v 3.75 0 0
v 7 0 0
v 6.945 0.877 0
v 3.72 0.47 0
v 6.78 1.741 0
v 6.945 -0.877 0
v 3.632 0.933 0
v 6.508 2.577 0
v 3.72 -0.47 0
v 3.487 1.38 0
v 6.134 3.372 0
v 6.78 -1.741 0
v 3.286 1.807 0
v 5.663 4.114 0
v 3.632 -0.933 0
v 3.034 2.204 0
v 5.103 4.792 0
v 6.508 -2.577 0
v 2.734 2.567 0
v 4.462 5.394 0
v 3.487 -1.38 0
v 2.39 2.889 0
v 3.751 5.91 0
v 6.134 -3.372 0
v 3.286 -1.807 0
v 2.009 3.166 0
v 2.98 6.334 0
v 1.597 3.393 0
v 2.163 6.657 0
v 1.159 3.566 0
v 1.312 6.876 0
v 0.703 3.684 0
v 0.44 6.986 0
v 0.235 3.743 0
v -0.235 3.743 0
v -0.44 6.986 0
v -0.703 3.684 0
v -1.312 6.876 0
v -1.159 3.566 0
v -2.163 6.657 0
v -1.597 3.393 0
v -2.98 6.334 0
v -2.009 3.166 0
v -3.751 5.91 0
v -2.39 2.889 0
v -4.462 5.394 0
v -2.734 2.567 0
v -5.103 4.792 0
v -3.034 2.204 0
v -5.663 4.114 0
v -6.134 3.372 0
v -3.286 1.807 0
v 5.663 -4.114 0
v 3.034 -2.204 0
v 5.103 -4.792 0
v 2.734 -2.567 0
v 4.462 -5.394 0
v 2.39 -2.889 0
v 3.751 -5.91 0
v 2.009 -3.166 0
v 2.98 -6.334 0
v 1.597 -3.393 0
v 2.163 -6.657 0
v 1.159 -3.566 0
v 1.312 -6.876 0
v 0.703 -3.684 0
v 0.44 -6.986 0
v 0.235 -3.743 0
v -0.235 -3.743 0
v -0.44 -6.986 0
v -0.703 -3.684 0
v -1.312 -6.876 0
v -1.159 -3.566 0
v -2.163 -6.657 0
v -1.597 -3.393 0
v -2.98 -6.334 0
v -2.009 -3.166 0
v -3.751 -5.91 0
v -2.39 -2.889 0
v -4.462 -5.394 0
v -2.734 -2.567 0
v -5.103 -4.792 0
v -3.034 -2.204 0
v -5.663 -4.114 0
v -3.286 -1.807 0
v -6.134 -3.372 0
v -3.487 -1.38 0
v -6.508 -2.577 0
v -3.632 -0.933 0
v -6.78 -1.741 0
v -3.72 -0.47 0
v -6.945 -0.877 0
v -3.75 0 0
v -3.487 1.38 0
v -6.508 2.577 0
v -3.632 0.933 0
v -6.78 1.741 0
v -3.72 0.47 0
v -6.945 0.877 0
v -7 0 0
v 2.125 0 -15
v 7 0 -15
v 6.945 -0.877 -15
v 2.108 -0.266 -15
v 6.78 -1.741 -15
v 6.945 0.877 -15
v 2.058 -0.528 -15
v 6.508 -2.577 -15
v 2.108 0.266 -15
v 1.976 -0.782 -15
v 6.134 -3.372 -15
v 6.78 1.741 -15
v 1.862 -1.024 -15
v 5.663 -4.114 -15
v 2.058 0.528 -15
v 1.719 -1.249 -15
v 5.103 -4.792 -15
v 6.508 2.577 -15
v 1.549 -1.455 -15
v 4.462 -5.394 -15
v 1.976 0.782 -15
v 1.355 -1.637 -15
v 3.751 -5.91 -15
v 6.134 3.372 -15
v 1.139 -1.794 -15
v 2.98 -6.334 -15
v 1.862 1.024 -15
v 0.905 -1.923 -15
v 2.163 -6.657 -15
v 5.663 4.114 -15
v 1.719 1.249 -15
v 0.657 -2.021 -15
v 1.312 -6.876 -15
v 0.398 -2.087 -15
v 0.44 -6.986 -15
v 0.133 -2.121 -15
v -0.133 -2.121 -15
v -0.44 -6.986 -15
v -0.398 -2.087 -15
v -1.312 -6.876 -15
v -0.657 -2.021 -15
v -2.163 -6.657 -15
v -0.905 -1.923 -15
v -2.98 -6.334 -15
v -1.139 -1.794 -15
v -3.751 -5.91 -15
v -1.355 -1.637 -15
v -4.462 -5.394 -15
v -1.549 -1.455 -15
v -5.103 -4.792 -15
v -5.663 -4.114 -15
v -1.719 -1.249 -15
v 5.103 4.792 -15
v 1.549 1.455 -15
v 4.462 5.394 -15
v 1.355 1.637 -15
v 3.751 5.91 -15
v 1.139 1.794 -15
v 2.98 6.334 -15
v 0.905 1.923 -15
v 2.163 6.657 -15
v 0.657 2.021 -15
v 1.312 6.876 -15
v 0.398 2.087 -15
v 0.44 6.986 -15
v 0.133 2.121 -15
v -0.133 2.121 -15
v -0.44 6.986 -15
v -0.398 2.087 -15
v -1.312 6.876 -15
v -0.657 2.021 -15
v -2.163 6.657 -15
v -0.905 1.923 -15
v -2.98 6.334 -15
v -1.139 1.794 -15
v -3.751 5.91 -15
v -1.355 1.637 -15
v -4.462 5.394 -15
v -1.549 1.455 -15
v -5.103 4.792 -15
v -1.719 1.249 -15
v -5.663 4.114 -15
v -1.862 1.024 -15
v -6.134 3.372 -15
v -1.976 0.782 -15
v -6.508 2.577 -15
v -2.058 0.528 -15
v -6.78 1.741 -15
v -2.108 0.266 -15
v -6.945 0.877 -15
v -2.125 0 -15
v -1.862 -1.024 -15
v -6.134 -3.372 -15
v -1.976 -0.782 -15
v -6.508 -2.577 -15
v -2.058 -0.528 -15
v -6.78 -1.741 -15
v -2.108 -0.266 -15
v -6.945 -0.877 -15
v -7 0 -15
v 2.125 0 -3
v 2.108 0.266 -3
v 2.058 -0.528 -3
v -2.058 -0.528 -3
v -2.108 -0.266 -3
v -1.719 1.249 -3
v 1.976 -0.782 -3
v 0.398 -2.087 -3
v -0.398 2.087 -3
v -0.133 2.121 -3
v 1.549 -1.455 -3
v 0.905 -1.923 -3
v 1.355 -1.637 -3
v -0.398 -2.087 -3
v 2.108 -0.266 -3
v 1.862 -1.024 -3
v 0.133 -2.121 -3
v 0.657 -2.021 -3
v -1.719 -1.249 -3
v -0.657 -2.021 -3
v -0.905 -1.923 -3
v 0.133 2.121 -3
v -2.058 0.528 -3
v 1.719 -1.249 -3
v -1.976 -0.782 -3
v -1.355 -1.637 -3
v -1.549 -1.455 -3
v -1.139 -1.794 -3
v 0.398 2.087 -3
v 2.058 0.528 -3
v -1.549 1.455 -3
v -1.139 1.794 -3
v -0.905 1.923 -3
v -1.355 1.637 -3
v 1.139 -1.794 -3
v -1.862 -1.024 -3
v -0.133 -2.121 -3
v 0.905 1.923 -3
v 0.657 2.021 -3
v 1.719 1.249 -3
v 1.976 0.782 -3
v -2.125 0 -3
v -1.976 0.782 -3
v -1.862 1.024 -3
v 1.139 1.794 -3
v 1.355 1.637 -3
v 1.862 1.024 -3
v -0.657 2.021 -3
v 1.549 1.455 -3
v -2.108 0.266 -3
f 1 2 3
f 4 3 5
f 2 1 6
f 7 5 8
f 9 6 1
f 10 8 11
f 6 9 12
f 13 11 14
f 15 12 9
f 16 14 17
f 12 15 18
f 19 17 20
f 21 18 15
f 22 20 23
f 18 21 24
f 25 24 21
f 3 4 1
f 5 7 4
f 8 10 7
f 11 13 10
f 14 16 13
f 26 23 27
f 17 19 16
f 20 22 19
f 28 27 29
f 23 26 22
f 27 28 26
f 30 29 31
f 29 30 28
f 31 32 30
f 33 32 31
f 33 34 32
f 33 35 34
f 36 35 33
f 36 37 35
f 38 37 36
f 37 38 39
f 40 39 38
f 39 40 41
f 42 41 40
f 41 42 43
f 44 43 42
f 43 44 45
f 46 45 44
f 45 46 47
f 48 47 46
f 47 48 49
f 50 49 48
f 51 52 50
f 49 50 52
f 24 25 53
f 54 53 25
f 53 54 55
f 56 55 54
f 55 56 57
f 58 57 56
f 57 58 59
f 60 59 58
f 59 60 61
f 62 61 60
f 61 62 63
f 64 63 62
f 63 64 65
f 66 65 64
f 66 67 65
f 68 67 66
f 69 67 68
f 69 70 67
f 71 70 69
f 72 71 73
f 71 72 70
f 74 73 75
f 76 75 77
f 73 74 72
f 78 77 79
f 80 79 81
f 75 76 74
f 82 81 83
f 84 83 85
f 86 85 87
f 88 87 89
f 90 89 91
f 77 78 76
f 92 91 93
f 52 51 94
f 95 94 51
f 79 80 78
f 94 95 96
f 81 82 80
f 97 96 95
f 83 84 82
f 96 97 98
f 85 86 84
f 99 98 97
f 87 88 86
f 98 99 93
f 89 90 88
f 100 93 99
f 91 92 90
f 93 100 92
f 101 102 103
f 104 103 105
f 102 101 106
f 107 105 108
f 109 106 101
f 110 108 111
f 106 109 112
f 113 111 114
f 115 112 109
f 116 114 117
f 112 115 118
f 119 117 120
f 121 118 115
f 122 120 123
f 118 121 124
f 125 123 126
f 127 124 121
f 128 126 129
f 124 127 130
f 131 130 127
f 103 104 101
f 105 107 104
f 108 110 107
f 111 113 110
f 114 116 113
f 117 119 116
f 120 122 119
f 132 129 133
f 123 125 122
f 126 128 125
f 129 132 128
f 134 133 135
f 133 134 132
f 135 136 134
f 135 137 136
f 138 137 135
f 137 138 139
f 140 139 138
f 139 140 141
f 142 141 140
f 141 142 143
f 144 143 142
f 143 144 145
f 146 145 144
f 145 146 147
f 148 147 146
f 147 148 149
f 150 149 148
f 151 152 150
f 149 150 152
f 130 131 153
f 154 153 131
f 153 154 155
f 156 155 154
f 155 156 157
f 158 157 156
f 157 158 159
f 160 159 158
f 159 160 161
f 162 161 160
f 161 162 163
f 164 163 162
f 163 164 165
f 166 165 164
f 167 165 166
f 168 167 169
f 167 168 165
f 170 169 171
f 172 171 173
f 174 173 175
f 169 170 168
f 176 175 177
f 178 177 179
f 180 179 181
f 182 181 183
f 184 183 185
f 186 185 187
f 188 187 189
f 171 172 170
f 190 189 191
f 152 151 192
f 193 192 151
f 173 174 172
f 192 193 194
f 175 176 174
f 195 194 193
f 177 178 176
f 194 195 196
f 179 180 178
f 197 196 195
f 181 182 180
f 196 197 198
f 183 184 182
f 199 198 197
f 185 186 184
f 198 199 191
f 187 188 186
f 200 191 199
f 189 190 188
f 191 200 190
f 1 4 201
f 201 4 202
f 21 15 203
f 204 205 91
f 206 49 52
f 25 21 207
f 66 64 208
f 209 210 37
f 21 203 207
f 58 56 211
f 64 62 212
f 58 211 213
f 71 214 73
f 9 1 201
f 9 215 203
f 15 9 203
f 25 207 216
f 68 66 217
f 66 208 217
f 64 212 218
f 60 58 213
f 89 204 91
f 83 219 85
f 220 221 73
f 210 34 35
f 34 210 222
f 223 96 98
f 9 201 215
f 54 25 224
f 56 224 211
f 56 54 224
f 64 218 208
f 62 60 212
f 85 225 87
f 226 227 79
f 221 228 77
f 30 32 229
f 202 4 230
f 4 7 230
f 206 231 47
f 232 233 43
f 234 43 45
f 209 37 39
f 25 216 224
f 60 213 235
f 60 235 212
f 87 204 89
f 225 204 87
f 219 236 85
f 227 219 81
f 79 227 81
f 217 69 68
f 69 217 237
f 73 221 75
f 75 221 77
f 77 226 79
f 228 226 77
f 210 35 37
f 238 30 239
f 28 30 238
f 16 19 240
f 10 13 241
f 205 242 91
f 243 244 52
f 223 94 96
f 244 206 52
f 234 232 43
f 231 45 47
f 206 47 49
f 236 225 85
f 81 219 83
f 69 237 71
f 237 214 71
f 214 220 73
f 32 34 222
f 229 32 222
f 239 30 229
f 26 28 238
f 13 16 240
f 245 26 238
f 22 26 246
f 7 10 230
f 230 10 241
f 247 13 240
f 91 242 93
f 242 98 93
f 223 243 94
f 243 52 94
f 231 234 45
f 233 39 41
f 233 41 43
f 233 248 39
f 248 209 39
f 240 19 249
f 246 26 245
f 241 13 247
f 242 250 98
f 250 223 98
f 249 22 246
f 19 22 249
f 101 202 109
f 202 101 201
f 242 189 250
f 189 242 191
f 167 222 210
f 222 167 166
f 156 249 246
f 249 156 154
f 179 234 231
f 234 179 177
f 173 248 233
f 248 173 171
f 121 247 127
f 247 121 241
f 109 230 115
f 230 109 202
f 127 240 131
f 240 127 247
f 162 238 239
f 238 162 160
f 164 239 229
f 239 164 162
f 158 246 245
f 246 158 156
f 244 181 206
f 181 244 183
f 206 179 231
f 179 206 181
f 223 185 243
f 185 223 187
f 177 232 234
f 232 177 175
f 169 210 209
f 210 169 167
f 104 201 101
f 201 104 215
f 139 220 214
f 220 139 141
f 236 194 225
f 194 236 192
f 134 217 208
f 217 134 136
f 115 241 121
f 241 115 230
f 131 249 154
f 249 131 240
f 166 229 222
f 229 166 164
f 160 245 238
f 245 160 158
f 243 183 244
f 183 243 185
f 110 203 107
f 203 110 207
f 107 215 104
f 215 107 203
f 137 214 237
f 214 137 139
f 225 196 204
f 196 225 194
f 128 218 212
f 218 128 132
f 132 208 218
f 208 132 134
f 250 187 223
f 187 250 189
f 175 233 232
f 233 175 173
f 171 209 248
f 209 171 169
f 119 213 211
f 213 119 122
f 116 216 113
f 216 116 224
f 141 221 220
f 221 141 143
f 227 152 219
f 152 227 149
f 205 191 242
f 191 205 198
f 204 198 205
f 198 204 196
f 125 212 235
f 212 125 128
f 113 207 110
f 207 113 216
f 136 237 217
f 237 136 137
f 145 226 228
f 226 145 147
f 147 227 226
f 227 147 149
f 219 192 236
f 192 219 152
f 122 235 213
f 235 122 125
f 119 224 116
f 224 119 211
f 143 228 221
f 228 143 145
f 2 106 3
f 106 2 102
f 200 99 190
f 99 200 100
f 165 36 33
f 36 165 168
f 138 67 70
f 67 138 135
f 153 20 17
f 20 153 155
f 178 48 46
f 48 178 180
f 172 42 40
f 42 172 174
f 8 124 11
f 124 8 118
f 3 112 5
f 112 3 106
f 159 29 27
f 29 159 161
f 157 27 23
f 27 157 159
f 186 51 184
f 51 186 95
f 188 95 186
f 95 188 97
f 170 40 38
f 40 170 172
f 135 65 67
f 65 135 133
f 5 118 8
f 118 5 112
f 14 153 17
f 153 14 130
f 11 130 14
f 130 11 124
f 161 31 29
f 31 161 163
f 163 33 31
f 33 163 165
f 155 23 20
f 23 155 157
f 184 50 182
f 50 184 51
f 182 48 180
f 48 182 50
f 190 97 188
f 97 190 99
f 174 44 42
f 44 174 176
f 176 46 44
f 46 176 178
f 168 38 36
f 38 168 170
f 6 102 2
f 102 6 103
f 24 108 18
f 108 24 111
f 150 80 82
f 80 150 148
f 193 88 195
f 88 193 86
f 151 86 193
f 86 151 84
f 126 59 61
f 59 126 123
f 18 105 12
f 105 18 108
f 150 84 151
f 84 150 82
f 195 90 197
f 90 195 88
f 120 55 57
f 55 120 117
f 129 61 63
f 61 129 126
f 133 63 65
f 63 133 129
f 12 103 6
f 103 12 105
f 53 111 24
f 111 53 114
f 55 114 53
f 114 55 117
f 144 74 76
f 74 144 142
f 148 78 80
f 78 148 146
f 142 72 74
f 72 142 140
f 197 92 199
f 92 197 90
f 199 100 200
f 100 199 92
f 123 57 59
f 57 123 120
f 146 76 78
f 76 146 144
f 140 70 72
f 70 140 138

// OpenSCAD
$fn = 50;


difference() {
	union() {
		translate(v = [0, 0, -15.0000000000]) {
			cylinder(h = 15, r = 7.0000000000);
		}
		cylinder(h = 0, r = 16.0000000000);
	}
	union() {
		translate(v = [0, 0, 0]) {
			rotate(a = [0, 0, 0]) {
				difference() {
					union() {
						#translate(v = [0, 0, -15.0000000000]) {
							cylinder(h = 15, r = 2.0000000000);
						}
						#translate(v = [0, 0, -3]) {
							cylinder(h = 3, r1 = 2.1250000000, r2 = 3.7500000000);
						}
						#translate(v = [0, 0, -15.0000000000]) {
							cylinder(h = 15, r = 2.1250000000);
						}
						#translate(v = [0, 0, -15.0000000000]) {
							cylinder(h = 15, r = 2.0000000000);
						}
					}
					union();
				}
			}
		}
	}
}
